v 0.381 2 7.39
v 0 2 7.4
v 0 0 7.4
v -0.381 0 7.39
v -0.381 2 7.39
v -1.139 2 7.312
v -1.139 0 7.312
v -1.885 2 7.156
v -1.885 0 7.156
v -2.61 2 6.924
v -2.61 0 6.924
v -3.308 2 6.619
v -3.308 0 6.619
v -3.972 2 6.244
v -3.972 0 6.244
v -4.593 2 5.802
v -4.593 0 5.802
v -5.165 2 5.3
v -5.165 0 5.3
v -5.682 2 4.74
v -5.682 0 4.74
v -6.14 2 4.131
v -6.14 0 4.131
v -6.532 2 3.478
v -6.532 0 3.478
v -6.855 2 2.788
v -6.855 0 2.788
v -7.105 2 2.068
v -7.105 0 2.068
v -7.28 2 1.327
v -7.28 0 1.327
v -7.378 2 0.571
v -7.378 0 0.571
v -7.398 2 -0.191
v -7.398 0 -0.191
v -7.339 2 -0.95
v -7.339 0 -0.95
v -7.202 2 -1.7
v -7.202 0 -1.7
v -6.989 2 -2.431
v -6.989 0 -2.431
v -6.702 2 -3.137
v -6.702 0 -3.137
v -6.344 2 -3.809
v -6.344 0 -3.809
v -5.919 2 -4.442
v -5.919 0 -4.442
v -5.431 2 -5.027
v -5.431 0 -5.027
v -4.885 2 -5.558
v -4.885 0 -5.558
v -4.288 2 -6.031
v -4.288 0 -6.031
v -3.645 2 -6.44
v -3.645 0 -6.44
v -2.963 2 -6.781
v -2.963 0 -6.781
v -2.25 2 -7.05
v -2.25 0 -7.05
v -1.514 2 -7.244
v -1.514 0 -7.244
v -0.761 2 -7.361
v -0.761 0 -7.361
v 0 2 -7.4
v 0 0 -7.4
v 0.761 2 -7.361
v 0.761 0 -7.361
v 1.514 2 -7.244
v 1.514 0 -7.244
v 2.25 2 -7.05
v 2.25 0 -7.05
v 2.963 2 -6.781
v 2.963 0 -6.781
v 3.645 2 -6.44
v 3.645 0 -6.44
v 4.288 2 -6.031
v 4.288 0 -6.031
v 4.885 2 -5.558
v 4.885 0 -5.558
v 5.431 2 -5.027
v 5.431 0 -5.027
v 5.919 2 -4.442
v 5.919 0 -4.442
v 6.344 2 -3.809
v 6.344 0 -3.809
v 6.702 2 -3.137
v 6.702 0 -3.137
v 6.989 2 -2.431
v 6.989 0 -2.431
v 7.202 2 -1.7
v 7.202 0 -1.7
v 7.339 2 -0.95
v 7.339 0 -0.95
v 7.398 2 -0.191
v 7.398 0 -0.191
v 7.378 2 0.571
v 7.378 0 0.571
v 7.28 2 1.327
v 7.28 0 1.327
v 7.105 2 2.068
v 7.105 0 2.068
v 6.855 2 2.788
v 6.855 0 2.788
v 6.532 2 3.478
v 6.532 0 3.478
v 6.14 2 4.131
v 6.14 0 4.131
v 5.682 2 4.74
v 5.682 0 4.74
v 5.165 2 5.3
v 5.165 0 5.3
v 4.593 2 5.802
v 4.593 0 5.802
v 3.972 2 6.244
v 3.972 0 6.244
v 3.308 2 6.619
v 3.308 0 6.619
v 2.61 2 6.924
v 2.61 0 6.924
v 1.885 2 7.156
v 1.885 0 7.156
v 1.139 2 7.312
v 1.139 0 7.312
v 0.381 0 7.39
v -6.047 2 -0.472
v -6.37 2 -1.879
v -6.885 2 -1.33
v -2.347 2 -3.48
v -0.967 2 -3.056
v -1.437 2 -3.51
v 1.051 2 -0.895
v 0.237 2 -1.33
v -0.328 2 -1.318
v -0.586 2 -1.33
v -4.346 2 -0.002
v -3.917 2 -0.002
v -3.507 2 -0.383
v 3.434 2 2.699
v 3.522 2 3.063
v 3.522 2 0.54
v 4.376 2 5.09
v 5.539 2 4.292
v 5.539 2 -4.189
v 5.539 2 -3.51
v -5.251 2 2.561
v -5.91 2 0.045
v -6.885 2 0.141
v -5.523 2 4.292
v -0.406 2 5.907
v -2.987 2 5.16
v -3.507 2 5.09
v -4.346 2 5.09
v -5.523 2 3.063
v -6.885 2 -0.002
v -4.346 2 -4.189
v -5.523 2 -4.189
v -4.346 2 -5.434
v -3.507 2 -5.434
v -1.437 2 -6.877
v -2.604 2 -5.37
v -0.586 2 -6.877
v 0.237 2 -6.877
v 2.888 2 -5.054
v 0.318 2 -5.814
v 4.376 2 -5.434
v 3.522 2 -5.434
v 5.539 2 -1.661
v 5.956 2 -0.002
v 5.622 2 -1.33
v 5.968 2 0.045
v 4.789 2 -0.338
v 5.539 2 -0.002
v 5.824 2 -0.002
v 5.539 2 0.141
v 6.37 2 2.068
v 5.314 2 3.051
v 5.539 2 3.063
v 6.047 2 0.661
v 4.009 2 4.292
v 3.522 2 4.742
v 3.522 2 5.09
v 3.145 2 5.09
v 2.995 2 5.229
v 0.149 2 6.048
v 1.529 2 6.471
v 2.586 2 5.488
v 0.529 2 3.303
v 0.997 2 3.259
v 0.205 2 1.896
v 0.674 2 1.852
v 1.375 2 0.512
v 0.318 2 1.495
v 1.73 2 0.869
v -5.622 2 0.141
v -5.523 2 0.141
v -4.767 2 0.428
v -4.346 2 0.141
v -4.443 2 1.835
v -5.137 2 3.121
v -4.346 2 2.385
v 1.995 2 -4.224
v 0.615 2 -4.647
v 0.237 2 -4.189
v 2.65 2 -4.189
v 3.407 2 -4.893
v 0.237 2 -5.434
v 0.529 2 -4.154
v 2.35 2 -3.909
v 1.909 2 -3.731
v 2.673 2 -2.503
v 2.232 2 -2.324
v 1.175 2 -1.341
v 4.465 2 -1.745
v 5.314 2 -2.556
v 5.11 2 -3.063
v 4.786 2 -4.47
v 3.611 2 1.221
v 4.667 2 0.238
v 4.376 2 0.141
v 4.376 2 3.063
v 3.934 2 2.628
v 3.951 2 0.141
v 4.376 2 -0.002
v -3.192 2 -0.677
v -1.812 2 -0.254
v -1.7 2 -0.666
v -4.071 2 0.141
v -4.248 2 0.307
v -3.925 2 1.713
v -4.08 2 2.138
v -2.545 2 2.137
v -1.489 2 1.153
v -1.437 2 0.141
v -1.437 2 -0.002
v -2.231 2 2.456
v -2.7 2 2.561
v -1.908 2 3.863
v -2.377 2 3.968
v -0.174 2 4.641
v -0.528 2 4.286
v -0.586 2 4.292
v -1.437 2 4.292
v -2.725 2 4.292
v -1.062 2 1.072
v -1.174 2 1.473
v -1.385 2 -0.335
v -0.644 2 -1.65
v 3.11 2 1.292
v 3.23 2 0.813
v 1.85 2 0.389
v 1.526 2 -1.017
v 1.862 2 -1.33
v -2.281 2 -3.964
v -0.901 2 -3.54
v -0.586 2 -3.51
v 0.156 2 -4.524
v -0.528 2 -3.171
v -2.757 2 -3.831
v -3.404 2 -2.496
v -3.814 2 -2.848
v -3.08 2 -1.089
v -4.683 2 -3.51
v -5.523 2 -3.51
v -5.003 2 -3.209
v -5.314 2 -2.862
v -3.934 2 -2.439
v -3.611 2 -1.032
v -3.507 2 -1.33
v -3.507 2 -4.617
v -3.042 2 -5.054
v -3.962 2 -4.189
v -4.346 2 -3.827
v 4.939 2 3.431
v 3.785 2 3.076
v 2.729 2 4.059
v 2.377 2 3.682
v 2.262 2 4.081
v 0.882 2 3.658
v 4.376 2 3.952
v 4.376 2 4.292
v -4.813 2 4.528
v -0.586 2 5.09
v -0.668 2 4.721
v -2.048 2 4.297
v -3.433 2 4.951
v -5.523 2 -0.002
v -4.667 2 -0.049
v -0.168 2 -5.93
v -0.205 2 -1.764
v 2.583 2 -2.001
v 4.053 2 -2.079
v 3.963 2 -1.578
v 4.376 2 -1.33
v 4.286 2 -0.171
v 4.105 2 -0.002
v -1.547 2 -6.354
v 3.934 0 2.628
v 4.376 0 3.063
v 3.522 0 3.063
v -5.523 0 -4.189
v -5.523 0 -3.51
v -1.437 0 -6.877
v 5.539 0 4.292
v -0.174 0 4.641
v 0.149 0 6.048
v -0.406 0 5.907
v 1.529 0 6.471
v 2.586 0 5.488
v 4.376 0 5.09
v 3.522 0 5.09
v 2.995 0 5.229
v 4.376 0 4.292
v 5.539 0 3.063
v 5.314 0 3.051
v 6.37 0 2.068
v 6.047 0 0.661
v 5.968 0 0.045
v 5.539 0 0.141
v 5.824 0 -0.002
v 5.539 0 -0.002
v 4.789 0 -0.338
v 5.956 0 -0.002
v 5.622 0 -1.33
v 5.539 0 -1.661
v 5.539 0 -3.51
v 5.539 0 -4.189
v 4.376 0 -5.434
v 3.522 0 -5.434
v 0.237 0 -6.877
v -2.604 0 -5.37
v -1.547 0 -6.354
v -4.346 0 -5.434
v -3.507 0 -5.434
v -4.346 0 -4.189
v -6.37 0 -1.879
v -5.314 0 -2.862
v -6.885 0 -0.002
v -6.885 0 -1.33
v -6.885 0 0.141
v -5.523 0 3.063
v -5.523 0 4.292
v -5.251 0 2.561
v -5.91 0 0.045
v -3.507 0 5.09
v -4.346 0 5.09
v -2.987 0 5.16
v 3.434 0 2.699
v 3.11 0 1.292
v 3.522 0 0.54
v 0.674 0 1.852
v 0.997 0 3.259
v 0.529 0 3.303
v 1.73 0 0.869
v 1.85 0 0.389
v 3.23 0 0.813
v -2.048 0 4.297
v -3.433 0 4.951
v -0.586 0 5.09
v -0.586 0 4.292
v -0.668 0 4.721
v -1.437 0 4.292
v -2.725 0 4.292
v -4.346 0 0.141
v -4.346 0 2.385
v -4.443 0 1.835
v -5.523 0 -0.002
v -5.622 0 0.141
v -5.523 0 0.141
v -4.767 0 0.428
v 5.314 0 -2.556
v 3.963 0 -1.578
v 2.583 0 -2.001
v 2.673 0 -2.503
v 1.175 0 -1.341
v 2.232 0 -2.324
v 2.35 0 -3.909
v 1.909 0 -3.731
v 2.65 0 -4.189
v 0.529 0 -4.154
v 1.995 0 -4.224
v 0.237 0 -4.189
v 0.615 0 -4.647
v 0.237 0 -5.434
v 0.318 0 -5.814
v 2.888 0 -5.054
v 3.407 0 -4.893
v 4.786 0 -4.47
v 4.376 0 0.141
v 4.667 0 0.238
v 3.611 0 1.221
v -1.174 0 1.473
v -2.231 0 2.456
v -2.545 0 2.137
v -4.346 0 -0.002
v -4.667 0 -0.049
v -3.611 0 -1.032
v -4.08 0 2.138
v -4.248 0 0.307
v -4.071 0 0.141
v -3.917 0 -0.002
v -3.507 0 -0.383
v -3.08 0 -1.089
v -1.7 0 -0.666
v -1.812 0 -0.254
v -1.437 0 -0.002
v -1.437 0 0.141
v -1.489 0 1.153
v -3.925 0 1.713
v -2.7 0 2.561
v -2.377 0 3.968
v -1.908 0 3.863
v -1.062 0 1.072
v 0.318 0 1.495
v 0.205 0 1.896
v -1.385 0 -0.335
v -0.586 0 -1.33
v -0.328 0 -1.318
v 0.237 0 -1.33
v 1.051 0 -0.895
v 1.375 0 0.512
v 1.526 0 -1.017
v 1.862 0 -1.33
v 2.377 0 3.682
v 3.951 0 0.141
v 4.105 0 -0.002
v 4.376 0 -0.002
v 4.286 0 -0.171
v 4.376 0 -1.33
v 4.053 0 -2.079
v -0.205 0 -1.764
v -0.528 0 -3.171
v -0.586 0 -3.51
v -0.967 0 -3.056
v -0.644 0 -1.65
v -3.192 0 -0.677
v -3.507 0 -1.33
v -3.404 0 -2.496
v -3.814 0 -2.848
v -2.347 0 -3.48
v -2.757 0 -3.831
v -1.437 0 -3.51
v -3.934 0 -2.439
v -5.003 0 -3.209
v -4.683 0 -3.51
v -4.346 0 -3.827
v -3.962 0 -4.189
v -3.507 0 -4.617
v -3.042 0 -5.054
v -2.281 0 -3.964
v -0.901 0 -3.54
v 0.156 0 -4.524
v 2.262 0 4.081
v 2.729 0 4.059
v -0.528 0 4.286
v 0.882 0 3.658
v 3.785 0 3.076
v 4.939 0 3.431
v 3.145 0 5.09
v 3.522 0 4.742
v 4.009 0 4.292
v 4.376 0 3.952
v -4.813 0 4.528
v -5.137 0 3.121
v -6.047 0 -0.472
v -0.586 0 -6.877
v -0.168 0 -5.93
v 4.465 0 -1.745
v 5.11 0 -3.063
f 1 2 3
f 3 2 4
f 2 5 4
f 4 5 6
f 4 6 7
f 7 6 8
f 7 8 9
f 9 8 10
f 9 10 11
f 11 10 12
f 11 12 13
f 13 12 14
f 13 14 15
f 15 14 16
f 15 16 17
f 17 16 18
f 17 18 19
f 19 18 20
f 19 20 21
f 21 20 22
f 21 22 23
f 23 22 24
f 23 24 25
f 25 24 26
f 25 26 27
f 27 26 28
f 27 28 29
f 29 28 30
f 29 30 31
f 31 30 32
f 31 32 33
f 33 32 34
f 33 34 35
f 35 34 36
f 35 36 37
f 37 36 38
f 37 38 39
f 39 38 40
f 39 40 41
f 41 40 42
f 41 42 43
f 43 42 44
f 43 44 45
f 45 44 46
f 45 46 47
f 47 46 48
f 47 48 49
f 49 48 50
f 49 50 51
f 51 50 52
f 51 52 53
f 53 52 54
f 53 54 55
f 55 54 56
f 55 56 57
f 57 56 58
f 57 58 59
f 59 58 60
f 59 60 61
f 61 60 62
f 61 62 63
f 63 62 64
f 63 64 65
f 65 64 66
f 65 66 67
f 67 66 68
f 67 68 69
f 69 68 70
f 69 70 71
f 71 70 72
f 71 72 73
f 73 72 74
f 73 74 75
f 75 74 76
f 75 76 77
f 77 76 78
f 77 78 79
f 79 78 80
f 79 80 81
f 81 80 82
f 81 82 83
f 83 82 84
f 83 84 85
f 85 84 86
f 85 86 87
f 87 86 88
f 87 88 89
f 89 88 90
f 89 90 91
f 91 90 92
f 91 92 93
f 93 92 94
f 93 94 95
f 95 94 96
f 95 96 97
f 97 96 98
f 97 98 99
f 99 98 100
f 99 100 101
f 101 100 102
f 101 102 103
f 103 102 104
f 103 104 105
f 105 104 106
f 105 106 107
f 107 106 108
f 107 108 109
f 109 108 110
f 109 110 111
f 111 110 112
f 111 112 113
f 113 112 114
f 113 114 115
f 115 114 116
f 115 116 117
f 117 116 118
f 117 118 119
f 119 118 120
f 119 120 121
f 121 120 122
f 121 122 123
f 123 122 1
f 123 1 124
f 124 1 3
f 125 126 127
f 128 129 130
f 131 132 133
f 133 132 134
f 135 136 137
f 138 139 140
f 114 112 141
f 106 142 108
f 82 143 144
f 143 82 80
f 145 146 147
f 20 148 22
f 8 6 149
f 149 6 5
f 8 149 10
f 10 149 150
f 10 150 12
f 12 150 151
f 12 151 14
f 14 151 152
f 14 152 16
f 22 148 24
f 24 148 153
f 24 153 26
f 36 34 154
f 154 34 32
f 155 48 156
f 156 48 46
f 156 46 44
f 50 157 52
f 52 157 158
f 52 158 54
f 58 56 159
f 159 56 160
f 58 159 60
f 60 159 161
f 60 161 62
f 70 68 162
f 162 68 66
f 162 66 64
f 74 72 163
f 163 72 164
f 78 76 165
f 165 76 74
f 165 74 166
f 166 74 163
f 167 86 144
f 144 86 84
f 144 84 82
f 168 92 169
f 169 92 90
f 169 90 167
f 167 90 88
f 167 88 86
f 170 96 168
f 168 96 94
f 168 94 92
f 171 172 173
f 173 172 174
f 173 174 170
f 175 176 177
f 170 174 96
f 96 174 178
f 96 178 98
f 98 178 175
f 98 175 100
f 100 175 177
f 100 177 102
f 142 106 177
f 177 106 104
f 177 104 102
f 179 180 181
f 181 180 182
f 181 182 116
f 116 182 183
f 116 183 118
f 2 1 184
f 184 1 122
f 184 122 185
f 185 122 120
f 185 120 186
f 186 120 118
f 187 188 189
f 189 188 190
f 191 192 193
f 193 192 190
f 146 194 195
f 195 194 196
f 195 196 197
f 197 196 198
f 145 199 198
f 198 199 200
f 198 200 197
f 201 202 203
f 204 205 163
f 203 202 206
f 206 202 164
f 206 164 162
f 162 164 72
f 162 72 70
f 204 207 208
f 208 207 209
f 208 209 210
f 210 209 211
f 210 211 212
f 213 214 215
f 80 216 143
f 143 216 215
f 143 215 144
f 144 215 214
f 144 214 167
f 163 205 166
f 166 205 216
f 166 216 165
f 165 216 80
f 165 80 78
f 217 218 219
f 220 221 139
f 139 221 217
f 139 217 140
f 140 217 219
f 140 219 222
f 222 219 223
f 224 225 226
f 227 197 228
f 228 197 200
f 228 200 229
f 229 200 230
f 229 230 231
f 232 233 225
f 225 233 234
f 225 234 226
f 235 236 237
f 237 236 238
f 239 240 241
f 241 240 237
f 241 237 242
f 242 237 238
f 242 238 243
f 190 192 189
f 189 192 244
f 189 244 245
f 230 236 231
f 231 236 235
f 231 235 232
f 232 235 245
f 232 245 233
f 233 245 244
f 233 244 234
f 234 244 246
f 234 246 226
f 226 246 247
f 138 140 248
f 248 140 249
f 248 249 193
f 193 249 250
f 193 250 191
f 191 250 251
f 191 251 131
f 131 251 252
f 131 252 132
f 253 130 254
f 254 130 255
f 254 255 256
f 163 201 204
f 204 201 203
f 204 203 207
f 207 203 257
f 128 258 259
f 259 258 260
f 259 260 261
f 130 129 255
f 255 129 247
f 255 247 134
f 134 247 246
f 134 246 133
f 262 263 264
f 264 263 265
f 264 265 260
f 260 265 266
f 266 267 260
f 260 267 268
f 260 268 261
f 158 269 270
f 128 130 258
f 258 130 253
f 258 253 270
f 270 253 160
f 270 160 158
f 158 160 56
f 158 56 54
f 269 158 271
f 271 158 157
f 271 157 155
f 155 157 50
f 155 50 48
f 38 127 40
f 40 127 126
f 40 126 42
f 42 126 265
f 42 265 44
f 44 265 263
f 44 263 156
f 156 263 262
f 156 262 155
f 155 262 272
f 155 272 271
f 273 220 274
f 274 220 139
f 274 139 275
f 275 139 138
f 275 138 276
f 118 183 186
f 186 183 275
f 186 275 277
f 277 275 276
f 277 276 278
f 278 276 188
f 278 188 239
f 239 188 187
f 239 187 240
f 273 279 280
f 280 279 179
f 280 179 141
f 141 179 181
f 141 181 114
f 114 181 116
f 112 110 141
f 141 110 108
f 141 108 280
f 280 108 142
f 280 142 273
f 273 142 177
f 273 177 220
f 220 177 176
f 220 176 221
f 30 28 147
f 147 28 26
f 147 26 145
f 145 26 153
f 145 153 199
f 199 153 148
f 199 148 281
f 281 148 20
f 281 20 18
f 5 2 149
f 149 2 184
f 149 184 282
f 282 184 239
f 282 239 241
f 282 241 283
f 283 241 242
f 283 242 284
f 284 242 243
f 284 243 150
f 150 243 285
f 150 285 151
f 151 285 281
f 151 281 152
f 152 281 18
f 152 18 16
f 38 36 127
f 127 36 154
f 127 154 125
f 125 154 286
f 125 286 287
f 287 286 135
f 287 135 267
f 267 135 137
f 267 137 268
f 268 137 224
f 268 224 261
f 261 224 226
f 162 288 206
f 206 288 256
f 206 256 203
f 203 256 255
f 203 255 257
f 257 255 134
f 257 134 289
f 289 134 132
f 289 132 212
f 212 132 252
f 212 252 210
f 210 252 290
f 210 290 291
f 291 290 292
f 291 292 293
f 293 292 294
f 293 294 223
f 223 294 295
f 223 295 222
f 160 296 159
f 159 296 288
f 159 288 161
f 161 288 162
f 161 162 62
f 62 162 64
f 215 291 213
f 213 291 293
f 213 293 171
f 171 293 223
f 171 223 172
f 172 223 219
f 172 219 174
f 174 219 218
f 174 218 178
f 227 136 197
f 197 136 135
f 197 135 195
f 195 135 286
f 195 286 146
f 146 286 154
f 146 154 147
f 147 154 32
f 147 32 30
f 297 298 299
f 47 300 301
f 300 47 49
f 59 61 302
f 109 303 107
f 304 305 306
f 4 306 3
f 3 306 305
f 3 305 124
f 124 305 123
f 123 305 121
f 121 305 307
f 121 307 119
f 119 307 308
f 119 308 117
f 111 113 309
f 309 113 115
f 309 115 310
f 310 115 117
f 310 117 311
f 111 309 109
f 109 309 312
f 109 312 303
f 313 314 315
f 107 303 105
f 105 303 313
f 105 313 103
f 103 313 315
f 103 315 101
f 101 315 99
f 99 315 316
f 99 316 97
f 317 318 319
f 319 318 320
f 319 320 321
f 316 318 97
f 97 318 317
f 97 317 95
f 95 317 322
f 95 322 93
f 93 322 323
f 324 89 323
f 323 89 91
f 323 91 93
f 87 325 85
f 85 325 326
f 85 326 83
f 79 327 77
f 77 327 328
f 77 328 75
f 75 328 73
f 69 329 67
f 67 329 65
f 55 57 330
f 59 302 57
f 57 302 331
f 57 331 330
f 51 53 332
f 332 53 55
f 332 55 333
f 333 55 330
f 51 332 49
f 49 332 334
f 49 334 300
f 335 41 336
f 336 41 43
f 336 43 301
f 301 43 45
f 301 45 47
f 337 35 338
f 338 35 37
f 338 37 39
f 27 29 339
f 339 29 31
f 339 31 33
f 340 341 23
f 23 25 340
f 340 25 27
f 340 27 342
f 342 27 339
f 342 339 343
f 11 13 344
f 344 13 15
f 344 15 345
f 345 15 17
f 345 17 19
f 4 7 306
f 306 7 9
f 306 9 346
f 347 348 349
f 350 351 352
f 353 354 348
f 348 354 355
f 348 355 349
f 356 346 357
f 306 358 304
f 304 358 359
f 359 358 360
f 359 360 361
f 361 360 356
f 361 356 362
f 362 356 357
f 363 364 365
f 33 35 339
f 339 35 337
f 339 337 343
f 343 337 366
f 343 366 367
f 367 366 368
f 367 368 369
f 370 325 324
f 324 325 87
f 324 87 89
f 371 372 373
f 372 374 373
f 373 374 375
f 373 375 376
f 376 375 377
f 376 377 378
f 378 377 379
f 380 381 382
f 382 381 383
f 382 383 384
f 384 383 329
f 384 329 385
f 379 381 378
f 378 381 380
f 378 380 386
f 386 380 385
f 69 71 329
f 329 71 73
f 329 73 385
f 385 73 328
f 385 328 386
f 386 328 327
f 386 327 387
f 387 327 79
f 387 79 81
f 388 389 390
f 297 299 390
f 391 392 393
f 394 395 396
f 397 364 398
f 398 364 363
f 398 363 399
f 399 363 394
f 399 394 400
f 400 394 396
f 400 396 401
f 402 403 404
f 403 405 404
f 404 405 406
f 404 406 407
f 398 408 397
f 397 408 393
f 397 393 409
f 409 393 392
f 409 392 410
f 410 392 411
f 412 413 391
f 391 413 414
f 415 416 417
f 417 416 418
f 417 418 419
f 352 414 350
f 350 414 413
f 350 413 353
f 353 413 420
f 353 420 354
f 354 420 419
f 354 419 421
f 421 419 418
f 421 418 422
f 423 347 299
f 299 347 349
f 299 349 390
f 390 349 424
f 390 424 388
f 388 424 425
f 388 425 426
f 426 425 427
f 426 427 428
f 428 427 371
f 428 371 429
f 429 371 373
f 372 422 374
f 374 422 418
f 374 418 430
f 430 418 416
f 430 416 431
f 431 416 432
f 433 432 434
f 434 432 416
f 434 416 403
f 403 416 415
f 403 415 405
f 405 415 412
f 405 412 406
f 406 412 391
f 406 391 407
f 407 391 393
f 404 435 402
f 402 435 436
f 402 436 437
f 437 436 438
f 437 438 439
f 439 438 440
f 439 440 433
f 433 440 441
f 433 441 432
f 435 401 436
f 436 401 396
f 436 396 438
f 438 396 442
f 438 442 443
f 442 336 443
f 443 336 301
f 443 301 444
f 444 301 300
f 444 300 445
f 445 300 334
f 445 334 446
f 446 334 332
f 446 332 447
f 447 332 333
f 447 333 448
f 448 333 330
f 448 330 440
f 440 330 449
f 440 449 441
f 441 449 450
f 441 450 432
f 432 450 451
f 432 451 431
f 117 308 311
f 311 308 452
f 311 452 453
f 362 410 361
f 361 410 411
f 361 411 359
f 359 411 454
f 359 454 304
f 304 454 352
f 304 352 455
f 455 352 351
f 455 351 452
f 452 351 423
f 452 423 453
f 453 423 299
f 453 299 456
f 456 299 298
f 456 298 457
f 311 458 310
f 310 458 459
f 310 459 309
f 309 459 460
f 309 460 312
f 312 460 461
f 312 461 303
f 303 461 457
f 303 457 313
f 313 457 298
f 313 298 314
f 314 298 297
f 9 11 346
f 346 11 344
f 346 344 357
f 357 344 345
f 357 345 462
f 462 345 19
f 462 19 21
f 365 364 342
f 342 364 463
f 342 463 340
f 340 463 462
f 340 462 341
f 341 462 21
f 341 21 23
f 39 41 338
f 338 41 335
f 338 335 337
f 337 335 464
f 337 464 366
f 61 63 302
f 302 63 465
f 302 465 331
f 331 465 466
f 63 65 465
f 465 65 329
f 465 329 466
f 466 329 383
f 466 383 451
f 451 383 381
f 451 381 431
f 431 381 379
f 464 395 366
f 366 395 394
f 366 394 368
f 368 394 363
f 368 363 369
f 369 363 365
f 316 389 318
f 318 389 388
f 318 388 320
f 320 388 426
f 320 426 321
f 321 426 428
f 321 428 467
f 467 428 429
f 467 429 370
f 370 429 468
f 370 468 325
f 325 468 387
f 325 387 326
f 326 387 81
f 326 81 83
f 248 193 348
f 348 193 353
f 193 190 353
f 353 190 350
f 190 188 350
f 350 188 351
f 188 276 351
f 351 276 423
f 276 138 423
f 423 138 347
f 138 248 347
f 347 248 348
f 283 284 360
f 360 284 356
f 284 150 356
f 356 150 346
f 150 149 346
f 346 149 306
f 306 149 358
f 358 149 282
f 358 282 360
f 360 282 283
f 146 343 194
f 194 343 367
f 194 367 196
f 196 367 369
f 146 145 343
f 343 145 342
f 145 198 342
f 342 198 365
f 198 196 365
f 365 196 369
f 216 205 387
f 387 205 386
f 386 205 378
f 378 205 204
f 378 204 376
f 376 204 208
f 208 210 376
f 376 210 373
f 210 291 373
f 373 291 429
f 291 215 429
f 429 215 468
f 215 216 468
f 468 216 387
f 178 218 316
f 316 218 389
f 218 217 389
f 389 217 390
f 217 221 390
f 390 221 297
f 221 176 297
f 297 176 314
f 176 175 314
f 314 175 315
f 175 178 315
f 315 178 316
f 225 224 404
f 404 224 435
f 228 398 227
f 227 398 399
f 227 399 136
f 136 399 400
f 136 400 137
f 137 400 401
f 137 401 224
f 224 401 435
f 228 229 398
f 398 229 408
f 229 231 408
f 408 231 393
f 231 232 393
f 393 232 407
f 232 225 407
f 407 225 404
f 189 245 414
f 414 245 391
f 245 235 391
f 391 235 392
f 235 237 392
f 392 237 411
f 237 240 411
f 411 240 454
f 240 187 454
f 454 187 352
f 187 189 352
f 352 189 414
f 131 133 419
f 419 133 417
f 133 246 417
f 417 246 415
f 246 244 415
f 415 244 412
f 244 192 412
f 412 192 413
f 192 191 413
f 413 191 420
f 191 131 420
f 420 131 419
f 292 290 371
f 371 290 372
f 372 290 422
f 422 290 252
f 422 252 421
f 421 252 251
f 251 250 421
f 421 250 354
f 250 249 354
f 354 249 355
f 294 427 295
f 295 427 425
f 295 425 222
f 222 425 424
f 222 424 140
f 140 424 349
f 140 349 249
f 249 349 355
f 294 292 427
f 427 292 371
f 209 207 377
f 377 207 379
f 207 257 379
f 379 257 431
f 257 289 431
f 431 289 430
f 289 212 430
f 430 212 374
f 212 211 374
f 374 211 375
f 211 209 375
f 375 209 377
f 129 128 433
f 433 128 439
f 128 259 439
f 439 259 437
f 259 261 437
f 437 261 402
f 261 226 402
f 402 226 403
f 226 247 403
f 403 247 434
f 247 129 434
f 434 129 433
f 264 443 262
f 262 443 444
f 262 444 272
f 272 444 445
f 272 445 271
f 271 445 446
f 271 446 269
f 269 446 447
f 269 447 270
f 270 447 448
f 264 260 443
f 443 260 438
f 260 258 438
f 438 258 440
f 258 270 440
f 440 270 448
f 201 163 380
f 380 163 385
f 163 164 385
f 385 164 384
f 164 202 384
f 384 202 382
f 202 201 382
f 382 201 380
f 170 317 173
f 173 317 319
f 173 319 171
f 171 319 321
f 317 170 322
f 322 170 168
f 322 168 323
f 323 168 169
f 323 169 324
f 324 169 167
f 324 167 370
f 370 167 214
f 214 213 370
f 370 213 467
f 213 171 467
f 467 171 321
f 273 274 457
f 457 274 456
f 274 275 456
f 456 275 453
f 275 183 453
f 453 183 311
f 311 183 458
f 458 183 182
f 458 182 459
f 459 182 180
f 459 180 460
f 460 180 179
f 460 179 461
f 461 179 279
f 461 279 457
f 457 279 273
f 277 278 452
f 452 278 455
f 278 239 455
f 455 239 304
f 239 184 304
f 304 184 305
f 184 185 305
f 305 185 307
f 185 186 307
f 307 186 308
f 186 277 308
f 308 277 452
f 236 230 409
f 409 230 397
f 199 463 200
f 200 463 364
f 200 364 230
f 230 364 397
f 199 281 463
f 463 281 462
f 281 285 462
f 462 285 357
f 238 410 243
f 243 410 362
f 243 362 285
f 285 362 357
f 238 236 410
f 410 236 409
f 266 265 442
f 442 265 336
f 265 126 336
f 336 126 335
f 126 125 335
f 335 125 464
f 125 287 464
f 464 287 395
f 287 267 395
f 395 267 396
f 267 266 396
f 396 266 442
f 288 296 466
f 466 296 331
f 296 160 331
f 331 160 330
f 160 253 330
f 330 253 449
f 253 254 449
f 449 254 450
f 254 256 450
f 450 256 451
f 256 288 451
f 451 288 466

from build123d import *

# Parameters (mm, degrees)
SKIZZE1_R                       = 7.4
AUFSATZ_LINEAR_AUSTRAGEN2_DEPTH = 2
SCHNITT_LINEAR_AUSTRAGEN2_DEPTH = 2


with BuildPart() as part:
    # Skizze1 → Aufsatz-Linear austragen2 (new body)
    with BuildSketch(Plane(origin=(0, 0, 0), x_dir=(1, 0, 0), z_dir=(0, 1, 0))):
        Circle(SKIZZE1_R)
    extrude(amount=AUFSATZ_LINEAR_AUSTRAGEN2_DEPTH)

    # Skizze3 → Schnitt-Linear austragen2 (cut)
    with BuildSketch(Plane.XZ):
        Polygon((3.110355434, 1.292281092), (3.433750851, 2.698961133), (2.377227909, 3.6823698), (0.99730955, 3.259098426), (0.673914133, 1.852418385), (1.730437075, 0.869009718), align=None)
        Polygon((1.051482334, -0.894820995), (1.374877751, 0.511859046), (0.318354809, 1.495267713), (-1.06156355, 1.071996339), (-1.384958967, -0.334683702), (-0.328436025, -1.318092369), align=None)
        Polygon((3.962790655, -1.57756505), (4.286186071, -0.170885009), (3.229663129, 0.812523658), (1.84974477, 0.389252284), (1.526349354, -1.017427757), (2.582872296, -2.000836424), align=None)
        Polygon((1.908536497, -3.73106102), (2.231931914, -2.324380979), (1.175408972, -1.340972312), (-0.204509387, -1.764243686), (-0.527904804, -3.170923727), (0.528618138, -4.154332394), align=None)
        Polygon((-0.967115848, -3.0562984), (-0.643720431, -1.649618359), (-1.700243373, -0.666209692), (-3.080161732, -1.089481066), (-3.403557149, -2.496161107), (-2.347034207, -3.479569774), align=None)
        Polygon((-1.811929532, -0.253503523), (-1.488534116, 1.153176518), (-2.545057058, 2.136585185), (-3.924975416, 1.713313811), (-4.248370833, 0.30663377), (-3.191847891, -0.676774897), align=None)
        Polygon((0.205432908, 1.896097632), (0.528828325, 3.302777673), (-0.527694618, 4.28618634), (-1.907612976, 3.862914966), (-2.231008393, 2.456234925), (-1.174485451, 1.472826258), align=None)
        Polygon((6.04694768, 0.660967687), (6.370343097, 2.067647728), (5.313820155, 3.051056395), (3.933901796, 2.627785021), (3.610506379, 1.22110498), (4.667029321, 0.237696313), align=None)
        Polygon((4.786465264, -4.469572088), (5.109860681, -3.062892047), (4.053337739, -2.07948338), (2.67341938, -2.502754754), (2.350023963, -3.909434795), (3.406546905, -4.892843462), align=None)
        Polygon((-0.16753074, -5.930350774), (0.155864677, -4.523670733), (-0.900658265, -3.540262066), (-2.280576624, -3.96353344), (-2.603972041, -5.370213481), (-1.547449099, -6.353622148), align=None)
        Polygon((-3.933901796, -2.438733427), (-3.610506379, -1.032053386), (-4.667029321, -0.048644719), (-6.04694768, -0.471916093), (-6.370343097, -1.878596134), (-5.313820155, -2.862004801), align=None)
        Polygon((-2.700371821, 2.561167603), (-2.376976404, 3.967847644), (-3.433499346, 4.951256311), (-4.813417705, 4.527984937), (-5.136813122, 3.121304896), (-4.08029018, 2.137896229), align=None)
        Polygon((2.26230049, 4.081327536), (2.585695906, 5.488007577), (1.529172964, 6.471416244), (0.149254605, 6.04814487), (-0.174140811, 4.641464829), (0.882382131, 3.658056162), align=None)
        Polygon((4.939265844, 3.431140862), (2.995205508, 5.228874076), (2.728936611, 4.059318245), (3.785459554, 3.075909578), align=None)
        Polygon((5.313820155, -2.556040794), (5.967525742, 0.044561799), (4.788744949, -0.337862256), (4.465349532, -1.744542297), align=None)
        Polygon((0.318354809, -5.813813764), (2.887600861, -5.054112189), (1.995209721, -4.223766537), (0.615291362, -4.647037911), align=None)
        Polygon((-3.042477939, -5.054112189), (-2.757057663, -3.831247126), (-3.813580605, -2.847838459), (-5.002736834, -3.209095193), align=None)
        Polygon((-4.766685593, 0.428469167), (-4.443290177, 1.835149208), (-5.251077368, 2.561167603), (-5.909694674, 0.044561799), align=None)
        Polygon((-0.667764964, 4.720679563), (-0.406041453, 5.906533391), (-2.986939248, 5.160492623), (-2.047683323, 4.297408189), align=None)
    extrude(amount=-SCHNITT_LINEAR_AUSTRAGEN2_DEPTH, mode=Mode.SUBTRACT)


solid = part.part
